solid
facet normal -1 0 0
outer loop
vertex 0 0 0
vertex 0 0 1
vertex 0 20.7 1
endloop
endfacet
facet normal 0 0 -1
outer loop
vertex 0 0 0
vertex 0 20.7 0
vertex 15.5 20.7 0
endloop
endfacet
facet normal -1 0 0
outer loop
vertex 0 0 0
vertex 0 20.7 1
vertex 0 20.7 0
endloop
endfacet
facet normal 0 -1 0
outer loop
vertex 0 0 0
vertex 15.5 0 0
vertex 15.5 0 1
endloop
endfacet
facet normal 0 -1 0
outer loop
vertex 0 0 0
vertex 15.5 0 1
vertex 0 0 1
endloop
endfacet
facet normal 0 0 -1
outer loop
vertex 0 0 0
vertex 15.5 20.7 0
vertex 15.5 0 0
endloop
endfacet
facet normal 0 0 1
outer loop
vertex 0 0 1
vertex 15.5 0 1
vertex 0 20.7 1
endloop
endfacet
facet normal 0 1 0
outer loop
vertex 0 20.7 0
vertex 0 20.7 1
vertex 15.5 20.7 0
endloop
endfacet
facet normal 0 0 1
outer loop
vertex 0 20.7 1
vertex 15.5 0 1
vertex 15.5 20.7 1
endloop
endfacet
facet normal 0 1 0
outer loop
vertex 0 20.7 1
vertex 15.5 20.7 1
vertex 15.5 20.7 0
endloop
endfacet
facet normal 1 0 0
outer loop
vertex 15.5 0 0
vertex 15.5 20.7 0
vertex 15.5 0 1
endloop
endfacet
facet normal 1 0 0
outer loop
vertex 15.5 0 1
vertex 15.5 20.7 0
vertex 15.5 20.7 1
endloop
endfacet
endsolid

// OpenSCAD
/* Warning, this is a very basic generator with a lot of approximation 
input data : [MODULE, ZSX, 15.5x20.7mm, 39, , C, C04-10052C]
generated by com.zoubworld.electronics.cad.model3d.Basic
Date : Sun Feb 15 10:50:49 CET 2026
*/

//body
color("black")
translate([0,0,0])
cube([15.5,20.7,1.0], center=false);
